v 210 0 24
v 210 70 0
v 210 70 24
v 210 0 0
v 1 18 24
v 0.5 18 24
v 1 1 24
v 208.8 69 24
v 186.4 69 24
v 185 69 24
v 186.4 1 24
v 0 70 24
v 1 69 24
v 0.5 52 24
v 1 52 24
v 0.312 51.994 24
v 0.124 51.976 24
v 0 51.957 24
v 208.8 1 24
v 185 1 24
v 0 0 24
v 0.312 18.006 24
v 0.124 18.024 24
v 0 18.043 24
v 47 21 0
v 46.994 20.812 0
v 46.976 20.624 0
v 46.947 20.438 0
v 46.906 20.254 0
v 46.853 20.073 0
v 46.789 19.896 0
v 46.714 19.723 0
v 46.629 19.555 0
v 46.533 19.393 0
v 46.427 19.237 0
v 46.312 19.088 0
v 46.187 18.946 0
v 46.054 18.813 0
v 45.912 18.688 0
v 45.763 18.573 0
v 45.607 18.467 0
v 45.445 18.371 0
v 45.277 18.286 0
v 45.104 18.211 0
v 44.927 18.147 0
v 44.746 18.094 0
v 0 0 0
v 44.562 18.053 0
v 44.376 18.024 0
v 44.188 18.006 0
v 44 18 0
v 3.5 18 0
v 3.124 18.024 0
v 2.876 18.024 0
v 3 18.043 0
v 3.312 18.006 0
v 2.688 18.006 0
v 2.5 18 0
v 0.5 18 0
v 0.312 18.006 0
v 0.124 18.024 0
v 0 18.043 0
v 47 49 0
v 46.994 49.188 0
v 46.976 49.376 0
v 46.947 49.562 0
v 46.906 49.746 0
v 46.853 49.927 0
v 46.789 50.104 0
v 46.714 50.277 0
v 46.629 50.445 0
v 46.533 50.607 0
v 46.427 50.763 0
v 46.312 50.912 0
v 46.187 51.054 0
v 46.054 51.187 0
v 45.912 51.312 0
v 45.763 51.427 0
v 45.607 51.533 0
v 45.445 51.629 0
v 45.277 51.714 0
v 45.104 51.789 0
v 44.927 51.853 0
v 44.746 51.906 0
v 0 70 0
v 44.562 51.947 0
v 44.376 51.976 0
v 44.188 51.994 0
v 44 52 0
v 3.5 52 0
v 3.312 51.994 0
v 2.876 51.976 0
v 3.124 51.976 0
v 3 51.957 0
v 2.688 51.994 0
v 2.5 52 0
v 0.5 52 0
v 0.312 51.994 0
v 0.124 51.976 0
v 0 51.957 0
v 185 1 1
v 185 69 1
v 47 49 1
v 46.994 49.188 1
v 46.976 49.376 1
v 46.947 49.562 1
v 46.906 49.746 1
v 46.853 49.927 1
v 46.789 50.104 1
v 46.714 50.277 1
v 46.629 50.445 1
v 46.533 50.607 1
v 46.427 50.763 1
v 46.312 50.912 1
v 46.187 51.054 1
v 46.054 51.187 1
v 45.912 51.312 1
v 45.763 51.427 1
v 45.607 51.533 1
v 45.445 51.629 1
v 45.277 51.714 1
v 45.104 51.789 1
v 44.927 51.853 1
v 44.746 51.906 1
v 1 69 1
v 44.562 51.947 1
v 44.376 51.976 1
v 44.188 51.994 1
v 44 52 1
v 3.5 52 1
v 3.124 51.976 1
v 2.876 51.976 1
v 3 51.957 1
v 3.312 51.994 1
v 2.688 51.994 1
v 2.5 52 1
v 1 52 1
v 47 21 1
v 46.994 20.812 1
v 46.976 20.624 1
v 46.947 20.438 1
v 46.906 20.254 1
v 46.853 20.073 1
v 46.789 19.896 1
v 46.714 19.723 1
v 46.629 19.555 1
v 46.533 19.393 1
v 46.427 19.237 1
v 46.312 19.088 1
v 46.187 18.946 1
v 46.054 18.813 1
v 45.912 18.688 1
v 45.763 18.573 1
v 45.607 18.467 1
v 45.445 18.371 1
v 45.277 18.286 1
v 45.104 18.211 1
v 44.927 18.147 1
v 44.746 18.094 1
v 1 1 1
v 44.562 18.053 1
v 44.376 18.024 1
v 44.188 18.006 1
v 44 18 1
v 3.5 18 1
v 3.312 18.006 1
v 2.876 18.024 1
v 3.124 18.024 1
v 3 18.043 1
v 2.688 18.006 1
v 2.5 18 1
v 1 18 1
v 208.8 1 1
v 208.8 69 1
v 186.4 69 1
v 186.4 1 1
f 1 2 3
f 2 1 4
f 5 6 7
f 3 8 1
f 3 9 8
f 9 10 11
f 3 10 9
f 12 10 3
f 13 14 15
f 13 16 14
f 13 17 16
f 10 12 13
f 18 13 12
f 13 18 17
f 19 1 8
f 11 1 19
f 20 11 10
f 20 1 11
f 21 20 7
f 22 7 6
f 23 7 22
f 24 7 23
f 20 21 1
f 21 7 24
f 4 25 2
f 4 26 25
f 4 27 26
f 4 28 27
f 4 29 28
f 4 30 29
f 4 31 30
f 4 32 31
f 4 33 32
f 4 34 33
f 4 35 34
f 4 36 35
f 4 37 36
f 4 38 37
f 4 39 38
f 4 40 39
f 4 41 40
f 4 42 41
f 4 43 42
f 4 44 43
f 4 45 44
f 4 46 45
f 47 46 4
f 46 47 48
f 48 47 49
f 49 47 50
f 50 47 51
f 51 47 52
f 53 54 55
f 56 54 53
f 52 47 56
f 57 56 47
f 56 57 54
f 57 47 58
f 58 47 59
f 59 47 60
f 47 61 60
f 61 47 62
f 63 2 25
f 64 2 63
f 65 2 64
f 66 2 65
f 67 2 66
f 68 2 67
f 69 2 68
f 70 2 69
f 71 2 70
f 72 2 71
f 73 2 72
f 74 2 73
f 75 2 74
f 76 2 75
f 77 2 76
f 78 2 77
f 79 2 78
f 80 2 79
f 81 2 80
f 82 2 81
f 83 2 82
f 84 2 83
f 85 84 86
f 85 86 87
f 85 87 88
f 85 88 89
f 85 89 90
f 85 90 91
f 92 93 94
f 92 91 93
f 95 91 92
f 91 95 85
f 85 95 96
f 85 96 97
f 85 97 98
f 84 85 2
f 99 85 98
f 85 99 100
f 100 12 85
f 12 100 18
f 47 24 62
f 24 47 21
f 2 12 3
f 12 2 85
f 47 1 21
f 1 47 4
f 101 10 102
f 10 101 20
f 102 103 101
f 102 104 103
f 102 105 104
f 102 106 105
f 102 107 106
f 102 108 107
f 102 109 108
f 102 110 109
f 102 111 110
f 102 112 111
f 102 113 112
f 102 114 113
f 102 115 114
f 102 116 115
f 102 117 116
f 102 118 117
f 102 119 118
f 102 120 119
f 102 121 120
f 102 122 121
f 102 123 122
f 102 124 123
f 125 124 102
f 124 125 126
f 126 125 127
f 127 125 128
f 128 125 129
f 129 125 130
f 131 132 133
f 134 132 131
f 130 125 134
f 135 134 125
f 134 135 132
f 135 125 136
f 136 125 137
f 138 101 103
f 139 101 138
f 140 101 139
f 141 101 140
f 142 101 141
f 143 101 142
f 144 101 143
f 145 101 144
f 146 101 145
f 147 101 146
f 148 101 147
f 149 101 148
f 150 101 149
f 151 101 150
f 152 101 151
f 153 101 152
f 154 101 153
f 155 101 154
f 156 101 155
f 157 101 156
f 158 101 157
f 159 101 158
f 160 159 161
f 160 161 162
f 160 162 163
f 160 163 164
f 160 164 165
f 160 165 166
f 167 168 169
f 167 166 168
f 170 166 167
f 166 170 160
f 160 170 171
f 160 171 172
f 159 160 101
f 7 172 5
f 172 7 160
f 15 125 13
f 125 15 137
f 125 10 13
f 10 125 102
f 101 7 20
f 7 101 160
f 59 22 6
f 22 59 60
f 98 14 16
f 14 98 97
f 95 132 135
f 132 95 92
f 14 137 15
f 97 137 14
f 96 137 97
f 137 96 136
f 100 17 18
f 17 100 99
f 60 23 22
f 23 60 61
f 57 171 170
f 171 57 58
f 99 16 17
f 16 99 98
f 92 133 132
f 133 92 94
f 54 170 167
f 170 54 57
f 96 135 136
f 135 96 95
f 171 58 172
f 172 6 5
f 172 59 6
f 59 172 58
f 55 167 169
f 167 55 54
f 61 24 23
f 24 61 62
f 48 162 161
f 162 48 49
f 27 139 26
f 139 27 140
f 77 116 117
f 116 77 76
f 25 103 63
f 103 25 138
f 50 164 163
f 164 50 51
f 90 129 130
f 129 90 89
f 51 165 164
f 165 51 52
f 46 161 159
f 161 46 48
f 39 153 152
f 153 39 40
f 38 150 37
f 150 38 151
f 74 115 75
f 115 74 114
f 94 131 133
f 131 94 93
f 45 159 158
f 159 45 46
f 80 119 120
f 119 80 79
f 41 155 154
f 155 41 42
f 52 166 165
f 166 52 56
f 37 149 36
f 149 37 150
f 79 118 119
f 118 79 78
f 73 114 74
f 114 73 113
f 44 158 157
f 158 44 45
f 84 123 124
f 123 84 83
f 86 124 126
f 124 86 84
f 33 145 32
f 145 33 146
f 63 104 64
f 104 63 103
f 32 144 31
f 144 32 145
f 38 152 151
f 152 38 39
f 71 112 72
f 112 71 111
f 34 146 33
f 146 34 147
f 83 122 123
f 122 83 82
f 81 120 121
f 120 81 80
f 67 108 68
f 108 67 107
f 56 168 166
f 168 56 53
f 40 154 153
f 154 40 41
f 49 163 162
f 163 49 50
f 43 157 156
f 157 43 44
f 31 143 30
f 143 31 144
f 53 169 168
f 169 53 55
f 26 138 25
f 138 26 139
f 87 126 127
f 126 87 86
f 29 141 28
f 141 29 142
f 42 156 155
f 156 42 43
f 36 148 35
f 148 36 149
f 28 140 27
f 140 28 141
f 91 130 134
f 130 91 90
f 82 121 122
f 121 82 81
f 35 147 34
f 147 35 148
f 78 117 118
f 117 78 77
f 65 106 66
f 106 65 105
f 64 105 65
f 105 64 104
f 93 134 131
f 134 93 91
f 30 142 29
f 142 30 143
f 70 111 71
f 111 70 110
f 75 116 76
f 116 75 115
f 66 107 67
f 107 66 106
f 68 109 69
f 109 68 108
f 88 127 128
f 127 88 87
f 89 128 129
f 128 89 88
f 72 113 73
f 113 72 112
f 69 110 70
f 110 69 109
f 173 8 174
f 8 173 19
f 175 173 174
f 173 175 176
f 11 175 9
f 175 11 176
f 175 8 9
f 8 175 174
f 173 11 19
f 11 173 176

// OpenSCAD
include <boardgame_insert_toolkit_lib.2.scad>;

// determines whether lids are output.
g_b_print_lid = true;

// determines whether boxes are output.
g_b_print_box = true; 

// Focus on one box
g_isolated_print_box = ""; 

// Used to visualize how all of the boxes fit together. 
g_b_visualization = false;          
        
// this is the outer wall thickness. 
//Default = 1.5mm
g_wall_thickness = 1.0;

// The tolerance value is extra space put between planes of the lid and box that fit together.
// Increase the tolerance to loosen the fit and decrease it to tighten it.
//
// Note that the tolerance is applied exclusively to the lid.
// So if the lid is too tight or too loose, change this value ( up for looser fit, down for tighter fit ) and 
// you only need to reprint the lid.
// 
// The exception is the stackable box, where the bottom of the box is the lid of the box below,
// in which case the tolerance also affects that box bottom.
//
g_tolerance = 0.15;

// This adjusts the position of the lid detents downward. 
// The larger the value, the bigger the gap between the lid and the box.
g_tolerance_detents_pos = 0.1;

aw_size_x = 210.0;
aw_size_y = 70.0;
aw_size_z = 24.0;


data =
  [
    [
      "simple box",
      [
        [ BOX_SIZE_XYZ, [aw_size_x, aw_size_y, aw_size_z] ],
        [ BOX_NO_LID_B, t],
        [
          BOX_COMPONENT,
          [
            [
              CMP_COMPARTMENT_SIZE_XYZ,
              [
                184,
                (aw_size_y - 1.0 - 1.0),
                aw_size_z - g_wall_thickness
              ]
            ],
            [ CMP_NUM_COMPARTMENTS_XY, [1, 1] ],
            //[ CMP_FILLET_RADIUS, 5.0 ],
            [ POSITION_XY, [0, 0] ],
            [ CMP_CUTOUT_SIDES_4B,   [f,f,t,f]],
            //[ CMP_CUTOUT_DEPTH_PCT,  20],
            //[ CMP_CUTOUT_WIDTH_PCT,  50],
            [ CMP_CUTOUT_HEIGHT_PCT, 100], 
          ]
        ],
        [
          BOX_COMPONENT,
          [
            [
              CMP_COMPARTMENT_SIZE_XYZ,
              [
                22.4,
                (aw_size_y - 1.0 - 1.0),
                aw_size_z - g_wall_thickness
              ]
            ],
            [ CMP_NUM_COMPARTMENTS_XY, [1, 1] ],
            //[ CMP_FILLET_RADIUS, 5.0 ],
            [ POSITION_XY, [185.4, 0] ],
            [ CMP_CUTOUT_SIDES_4B,   [f,f,f,f]],
            //[ CMP_CUTOUT_DEPTH_PCT,  20],
            //[ CMP_CUTOUT_WIDTH_PCT,  50],
            //[ CMP_CUTOUT_HEIGHT_PCT, 100], 
          ]
        ],
      ]
    ]
  ];

MakeAll();
